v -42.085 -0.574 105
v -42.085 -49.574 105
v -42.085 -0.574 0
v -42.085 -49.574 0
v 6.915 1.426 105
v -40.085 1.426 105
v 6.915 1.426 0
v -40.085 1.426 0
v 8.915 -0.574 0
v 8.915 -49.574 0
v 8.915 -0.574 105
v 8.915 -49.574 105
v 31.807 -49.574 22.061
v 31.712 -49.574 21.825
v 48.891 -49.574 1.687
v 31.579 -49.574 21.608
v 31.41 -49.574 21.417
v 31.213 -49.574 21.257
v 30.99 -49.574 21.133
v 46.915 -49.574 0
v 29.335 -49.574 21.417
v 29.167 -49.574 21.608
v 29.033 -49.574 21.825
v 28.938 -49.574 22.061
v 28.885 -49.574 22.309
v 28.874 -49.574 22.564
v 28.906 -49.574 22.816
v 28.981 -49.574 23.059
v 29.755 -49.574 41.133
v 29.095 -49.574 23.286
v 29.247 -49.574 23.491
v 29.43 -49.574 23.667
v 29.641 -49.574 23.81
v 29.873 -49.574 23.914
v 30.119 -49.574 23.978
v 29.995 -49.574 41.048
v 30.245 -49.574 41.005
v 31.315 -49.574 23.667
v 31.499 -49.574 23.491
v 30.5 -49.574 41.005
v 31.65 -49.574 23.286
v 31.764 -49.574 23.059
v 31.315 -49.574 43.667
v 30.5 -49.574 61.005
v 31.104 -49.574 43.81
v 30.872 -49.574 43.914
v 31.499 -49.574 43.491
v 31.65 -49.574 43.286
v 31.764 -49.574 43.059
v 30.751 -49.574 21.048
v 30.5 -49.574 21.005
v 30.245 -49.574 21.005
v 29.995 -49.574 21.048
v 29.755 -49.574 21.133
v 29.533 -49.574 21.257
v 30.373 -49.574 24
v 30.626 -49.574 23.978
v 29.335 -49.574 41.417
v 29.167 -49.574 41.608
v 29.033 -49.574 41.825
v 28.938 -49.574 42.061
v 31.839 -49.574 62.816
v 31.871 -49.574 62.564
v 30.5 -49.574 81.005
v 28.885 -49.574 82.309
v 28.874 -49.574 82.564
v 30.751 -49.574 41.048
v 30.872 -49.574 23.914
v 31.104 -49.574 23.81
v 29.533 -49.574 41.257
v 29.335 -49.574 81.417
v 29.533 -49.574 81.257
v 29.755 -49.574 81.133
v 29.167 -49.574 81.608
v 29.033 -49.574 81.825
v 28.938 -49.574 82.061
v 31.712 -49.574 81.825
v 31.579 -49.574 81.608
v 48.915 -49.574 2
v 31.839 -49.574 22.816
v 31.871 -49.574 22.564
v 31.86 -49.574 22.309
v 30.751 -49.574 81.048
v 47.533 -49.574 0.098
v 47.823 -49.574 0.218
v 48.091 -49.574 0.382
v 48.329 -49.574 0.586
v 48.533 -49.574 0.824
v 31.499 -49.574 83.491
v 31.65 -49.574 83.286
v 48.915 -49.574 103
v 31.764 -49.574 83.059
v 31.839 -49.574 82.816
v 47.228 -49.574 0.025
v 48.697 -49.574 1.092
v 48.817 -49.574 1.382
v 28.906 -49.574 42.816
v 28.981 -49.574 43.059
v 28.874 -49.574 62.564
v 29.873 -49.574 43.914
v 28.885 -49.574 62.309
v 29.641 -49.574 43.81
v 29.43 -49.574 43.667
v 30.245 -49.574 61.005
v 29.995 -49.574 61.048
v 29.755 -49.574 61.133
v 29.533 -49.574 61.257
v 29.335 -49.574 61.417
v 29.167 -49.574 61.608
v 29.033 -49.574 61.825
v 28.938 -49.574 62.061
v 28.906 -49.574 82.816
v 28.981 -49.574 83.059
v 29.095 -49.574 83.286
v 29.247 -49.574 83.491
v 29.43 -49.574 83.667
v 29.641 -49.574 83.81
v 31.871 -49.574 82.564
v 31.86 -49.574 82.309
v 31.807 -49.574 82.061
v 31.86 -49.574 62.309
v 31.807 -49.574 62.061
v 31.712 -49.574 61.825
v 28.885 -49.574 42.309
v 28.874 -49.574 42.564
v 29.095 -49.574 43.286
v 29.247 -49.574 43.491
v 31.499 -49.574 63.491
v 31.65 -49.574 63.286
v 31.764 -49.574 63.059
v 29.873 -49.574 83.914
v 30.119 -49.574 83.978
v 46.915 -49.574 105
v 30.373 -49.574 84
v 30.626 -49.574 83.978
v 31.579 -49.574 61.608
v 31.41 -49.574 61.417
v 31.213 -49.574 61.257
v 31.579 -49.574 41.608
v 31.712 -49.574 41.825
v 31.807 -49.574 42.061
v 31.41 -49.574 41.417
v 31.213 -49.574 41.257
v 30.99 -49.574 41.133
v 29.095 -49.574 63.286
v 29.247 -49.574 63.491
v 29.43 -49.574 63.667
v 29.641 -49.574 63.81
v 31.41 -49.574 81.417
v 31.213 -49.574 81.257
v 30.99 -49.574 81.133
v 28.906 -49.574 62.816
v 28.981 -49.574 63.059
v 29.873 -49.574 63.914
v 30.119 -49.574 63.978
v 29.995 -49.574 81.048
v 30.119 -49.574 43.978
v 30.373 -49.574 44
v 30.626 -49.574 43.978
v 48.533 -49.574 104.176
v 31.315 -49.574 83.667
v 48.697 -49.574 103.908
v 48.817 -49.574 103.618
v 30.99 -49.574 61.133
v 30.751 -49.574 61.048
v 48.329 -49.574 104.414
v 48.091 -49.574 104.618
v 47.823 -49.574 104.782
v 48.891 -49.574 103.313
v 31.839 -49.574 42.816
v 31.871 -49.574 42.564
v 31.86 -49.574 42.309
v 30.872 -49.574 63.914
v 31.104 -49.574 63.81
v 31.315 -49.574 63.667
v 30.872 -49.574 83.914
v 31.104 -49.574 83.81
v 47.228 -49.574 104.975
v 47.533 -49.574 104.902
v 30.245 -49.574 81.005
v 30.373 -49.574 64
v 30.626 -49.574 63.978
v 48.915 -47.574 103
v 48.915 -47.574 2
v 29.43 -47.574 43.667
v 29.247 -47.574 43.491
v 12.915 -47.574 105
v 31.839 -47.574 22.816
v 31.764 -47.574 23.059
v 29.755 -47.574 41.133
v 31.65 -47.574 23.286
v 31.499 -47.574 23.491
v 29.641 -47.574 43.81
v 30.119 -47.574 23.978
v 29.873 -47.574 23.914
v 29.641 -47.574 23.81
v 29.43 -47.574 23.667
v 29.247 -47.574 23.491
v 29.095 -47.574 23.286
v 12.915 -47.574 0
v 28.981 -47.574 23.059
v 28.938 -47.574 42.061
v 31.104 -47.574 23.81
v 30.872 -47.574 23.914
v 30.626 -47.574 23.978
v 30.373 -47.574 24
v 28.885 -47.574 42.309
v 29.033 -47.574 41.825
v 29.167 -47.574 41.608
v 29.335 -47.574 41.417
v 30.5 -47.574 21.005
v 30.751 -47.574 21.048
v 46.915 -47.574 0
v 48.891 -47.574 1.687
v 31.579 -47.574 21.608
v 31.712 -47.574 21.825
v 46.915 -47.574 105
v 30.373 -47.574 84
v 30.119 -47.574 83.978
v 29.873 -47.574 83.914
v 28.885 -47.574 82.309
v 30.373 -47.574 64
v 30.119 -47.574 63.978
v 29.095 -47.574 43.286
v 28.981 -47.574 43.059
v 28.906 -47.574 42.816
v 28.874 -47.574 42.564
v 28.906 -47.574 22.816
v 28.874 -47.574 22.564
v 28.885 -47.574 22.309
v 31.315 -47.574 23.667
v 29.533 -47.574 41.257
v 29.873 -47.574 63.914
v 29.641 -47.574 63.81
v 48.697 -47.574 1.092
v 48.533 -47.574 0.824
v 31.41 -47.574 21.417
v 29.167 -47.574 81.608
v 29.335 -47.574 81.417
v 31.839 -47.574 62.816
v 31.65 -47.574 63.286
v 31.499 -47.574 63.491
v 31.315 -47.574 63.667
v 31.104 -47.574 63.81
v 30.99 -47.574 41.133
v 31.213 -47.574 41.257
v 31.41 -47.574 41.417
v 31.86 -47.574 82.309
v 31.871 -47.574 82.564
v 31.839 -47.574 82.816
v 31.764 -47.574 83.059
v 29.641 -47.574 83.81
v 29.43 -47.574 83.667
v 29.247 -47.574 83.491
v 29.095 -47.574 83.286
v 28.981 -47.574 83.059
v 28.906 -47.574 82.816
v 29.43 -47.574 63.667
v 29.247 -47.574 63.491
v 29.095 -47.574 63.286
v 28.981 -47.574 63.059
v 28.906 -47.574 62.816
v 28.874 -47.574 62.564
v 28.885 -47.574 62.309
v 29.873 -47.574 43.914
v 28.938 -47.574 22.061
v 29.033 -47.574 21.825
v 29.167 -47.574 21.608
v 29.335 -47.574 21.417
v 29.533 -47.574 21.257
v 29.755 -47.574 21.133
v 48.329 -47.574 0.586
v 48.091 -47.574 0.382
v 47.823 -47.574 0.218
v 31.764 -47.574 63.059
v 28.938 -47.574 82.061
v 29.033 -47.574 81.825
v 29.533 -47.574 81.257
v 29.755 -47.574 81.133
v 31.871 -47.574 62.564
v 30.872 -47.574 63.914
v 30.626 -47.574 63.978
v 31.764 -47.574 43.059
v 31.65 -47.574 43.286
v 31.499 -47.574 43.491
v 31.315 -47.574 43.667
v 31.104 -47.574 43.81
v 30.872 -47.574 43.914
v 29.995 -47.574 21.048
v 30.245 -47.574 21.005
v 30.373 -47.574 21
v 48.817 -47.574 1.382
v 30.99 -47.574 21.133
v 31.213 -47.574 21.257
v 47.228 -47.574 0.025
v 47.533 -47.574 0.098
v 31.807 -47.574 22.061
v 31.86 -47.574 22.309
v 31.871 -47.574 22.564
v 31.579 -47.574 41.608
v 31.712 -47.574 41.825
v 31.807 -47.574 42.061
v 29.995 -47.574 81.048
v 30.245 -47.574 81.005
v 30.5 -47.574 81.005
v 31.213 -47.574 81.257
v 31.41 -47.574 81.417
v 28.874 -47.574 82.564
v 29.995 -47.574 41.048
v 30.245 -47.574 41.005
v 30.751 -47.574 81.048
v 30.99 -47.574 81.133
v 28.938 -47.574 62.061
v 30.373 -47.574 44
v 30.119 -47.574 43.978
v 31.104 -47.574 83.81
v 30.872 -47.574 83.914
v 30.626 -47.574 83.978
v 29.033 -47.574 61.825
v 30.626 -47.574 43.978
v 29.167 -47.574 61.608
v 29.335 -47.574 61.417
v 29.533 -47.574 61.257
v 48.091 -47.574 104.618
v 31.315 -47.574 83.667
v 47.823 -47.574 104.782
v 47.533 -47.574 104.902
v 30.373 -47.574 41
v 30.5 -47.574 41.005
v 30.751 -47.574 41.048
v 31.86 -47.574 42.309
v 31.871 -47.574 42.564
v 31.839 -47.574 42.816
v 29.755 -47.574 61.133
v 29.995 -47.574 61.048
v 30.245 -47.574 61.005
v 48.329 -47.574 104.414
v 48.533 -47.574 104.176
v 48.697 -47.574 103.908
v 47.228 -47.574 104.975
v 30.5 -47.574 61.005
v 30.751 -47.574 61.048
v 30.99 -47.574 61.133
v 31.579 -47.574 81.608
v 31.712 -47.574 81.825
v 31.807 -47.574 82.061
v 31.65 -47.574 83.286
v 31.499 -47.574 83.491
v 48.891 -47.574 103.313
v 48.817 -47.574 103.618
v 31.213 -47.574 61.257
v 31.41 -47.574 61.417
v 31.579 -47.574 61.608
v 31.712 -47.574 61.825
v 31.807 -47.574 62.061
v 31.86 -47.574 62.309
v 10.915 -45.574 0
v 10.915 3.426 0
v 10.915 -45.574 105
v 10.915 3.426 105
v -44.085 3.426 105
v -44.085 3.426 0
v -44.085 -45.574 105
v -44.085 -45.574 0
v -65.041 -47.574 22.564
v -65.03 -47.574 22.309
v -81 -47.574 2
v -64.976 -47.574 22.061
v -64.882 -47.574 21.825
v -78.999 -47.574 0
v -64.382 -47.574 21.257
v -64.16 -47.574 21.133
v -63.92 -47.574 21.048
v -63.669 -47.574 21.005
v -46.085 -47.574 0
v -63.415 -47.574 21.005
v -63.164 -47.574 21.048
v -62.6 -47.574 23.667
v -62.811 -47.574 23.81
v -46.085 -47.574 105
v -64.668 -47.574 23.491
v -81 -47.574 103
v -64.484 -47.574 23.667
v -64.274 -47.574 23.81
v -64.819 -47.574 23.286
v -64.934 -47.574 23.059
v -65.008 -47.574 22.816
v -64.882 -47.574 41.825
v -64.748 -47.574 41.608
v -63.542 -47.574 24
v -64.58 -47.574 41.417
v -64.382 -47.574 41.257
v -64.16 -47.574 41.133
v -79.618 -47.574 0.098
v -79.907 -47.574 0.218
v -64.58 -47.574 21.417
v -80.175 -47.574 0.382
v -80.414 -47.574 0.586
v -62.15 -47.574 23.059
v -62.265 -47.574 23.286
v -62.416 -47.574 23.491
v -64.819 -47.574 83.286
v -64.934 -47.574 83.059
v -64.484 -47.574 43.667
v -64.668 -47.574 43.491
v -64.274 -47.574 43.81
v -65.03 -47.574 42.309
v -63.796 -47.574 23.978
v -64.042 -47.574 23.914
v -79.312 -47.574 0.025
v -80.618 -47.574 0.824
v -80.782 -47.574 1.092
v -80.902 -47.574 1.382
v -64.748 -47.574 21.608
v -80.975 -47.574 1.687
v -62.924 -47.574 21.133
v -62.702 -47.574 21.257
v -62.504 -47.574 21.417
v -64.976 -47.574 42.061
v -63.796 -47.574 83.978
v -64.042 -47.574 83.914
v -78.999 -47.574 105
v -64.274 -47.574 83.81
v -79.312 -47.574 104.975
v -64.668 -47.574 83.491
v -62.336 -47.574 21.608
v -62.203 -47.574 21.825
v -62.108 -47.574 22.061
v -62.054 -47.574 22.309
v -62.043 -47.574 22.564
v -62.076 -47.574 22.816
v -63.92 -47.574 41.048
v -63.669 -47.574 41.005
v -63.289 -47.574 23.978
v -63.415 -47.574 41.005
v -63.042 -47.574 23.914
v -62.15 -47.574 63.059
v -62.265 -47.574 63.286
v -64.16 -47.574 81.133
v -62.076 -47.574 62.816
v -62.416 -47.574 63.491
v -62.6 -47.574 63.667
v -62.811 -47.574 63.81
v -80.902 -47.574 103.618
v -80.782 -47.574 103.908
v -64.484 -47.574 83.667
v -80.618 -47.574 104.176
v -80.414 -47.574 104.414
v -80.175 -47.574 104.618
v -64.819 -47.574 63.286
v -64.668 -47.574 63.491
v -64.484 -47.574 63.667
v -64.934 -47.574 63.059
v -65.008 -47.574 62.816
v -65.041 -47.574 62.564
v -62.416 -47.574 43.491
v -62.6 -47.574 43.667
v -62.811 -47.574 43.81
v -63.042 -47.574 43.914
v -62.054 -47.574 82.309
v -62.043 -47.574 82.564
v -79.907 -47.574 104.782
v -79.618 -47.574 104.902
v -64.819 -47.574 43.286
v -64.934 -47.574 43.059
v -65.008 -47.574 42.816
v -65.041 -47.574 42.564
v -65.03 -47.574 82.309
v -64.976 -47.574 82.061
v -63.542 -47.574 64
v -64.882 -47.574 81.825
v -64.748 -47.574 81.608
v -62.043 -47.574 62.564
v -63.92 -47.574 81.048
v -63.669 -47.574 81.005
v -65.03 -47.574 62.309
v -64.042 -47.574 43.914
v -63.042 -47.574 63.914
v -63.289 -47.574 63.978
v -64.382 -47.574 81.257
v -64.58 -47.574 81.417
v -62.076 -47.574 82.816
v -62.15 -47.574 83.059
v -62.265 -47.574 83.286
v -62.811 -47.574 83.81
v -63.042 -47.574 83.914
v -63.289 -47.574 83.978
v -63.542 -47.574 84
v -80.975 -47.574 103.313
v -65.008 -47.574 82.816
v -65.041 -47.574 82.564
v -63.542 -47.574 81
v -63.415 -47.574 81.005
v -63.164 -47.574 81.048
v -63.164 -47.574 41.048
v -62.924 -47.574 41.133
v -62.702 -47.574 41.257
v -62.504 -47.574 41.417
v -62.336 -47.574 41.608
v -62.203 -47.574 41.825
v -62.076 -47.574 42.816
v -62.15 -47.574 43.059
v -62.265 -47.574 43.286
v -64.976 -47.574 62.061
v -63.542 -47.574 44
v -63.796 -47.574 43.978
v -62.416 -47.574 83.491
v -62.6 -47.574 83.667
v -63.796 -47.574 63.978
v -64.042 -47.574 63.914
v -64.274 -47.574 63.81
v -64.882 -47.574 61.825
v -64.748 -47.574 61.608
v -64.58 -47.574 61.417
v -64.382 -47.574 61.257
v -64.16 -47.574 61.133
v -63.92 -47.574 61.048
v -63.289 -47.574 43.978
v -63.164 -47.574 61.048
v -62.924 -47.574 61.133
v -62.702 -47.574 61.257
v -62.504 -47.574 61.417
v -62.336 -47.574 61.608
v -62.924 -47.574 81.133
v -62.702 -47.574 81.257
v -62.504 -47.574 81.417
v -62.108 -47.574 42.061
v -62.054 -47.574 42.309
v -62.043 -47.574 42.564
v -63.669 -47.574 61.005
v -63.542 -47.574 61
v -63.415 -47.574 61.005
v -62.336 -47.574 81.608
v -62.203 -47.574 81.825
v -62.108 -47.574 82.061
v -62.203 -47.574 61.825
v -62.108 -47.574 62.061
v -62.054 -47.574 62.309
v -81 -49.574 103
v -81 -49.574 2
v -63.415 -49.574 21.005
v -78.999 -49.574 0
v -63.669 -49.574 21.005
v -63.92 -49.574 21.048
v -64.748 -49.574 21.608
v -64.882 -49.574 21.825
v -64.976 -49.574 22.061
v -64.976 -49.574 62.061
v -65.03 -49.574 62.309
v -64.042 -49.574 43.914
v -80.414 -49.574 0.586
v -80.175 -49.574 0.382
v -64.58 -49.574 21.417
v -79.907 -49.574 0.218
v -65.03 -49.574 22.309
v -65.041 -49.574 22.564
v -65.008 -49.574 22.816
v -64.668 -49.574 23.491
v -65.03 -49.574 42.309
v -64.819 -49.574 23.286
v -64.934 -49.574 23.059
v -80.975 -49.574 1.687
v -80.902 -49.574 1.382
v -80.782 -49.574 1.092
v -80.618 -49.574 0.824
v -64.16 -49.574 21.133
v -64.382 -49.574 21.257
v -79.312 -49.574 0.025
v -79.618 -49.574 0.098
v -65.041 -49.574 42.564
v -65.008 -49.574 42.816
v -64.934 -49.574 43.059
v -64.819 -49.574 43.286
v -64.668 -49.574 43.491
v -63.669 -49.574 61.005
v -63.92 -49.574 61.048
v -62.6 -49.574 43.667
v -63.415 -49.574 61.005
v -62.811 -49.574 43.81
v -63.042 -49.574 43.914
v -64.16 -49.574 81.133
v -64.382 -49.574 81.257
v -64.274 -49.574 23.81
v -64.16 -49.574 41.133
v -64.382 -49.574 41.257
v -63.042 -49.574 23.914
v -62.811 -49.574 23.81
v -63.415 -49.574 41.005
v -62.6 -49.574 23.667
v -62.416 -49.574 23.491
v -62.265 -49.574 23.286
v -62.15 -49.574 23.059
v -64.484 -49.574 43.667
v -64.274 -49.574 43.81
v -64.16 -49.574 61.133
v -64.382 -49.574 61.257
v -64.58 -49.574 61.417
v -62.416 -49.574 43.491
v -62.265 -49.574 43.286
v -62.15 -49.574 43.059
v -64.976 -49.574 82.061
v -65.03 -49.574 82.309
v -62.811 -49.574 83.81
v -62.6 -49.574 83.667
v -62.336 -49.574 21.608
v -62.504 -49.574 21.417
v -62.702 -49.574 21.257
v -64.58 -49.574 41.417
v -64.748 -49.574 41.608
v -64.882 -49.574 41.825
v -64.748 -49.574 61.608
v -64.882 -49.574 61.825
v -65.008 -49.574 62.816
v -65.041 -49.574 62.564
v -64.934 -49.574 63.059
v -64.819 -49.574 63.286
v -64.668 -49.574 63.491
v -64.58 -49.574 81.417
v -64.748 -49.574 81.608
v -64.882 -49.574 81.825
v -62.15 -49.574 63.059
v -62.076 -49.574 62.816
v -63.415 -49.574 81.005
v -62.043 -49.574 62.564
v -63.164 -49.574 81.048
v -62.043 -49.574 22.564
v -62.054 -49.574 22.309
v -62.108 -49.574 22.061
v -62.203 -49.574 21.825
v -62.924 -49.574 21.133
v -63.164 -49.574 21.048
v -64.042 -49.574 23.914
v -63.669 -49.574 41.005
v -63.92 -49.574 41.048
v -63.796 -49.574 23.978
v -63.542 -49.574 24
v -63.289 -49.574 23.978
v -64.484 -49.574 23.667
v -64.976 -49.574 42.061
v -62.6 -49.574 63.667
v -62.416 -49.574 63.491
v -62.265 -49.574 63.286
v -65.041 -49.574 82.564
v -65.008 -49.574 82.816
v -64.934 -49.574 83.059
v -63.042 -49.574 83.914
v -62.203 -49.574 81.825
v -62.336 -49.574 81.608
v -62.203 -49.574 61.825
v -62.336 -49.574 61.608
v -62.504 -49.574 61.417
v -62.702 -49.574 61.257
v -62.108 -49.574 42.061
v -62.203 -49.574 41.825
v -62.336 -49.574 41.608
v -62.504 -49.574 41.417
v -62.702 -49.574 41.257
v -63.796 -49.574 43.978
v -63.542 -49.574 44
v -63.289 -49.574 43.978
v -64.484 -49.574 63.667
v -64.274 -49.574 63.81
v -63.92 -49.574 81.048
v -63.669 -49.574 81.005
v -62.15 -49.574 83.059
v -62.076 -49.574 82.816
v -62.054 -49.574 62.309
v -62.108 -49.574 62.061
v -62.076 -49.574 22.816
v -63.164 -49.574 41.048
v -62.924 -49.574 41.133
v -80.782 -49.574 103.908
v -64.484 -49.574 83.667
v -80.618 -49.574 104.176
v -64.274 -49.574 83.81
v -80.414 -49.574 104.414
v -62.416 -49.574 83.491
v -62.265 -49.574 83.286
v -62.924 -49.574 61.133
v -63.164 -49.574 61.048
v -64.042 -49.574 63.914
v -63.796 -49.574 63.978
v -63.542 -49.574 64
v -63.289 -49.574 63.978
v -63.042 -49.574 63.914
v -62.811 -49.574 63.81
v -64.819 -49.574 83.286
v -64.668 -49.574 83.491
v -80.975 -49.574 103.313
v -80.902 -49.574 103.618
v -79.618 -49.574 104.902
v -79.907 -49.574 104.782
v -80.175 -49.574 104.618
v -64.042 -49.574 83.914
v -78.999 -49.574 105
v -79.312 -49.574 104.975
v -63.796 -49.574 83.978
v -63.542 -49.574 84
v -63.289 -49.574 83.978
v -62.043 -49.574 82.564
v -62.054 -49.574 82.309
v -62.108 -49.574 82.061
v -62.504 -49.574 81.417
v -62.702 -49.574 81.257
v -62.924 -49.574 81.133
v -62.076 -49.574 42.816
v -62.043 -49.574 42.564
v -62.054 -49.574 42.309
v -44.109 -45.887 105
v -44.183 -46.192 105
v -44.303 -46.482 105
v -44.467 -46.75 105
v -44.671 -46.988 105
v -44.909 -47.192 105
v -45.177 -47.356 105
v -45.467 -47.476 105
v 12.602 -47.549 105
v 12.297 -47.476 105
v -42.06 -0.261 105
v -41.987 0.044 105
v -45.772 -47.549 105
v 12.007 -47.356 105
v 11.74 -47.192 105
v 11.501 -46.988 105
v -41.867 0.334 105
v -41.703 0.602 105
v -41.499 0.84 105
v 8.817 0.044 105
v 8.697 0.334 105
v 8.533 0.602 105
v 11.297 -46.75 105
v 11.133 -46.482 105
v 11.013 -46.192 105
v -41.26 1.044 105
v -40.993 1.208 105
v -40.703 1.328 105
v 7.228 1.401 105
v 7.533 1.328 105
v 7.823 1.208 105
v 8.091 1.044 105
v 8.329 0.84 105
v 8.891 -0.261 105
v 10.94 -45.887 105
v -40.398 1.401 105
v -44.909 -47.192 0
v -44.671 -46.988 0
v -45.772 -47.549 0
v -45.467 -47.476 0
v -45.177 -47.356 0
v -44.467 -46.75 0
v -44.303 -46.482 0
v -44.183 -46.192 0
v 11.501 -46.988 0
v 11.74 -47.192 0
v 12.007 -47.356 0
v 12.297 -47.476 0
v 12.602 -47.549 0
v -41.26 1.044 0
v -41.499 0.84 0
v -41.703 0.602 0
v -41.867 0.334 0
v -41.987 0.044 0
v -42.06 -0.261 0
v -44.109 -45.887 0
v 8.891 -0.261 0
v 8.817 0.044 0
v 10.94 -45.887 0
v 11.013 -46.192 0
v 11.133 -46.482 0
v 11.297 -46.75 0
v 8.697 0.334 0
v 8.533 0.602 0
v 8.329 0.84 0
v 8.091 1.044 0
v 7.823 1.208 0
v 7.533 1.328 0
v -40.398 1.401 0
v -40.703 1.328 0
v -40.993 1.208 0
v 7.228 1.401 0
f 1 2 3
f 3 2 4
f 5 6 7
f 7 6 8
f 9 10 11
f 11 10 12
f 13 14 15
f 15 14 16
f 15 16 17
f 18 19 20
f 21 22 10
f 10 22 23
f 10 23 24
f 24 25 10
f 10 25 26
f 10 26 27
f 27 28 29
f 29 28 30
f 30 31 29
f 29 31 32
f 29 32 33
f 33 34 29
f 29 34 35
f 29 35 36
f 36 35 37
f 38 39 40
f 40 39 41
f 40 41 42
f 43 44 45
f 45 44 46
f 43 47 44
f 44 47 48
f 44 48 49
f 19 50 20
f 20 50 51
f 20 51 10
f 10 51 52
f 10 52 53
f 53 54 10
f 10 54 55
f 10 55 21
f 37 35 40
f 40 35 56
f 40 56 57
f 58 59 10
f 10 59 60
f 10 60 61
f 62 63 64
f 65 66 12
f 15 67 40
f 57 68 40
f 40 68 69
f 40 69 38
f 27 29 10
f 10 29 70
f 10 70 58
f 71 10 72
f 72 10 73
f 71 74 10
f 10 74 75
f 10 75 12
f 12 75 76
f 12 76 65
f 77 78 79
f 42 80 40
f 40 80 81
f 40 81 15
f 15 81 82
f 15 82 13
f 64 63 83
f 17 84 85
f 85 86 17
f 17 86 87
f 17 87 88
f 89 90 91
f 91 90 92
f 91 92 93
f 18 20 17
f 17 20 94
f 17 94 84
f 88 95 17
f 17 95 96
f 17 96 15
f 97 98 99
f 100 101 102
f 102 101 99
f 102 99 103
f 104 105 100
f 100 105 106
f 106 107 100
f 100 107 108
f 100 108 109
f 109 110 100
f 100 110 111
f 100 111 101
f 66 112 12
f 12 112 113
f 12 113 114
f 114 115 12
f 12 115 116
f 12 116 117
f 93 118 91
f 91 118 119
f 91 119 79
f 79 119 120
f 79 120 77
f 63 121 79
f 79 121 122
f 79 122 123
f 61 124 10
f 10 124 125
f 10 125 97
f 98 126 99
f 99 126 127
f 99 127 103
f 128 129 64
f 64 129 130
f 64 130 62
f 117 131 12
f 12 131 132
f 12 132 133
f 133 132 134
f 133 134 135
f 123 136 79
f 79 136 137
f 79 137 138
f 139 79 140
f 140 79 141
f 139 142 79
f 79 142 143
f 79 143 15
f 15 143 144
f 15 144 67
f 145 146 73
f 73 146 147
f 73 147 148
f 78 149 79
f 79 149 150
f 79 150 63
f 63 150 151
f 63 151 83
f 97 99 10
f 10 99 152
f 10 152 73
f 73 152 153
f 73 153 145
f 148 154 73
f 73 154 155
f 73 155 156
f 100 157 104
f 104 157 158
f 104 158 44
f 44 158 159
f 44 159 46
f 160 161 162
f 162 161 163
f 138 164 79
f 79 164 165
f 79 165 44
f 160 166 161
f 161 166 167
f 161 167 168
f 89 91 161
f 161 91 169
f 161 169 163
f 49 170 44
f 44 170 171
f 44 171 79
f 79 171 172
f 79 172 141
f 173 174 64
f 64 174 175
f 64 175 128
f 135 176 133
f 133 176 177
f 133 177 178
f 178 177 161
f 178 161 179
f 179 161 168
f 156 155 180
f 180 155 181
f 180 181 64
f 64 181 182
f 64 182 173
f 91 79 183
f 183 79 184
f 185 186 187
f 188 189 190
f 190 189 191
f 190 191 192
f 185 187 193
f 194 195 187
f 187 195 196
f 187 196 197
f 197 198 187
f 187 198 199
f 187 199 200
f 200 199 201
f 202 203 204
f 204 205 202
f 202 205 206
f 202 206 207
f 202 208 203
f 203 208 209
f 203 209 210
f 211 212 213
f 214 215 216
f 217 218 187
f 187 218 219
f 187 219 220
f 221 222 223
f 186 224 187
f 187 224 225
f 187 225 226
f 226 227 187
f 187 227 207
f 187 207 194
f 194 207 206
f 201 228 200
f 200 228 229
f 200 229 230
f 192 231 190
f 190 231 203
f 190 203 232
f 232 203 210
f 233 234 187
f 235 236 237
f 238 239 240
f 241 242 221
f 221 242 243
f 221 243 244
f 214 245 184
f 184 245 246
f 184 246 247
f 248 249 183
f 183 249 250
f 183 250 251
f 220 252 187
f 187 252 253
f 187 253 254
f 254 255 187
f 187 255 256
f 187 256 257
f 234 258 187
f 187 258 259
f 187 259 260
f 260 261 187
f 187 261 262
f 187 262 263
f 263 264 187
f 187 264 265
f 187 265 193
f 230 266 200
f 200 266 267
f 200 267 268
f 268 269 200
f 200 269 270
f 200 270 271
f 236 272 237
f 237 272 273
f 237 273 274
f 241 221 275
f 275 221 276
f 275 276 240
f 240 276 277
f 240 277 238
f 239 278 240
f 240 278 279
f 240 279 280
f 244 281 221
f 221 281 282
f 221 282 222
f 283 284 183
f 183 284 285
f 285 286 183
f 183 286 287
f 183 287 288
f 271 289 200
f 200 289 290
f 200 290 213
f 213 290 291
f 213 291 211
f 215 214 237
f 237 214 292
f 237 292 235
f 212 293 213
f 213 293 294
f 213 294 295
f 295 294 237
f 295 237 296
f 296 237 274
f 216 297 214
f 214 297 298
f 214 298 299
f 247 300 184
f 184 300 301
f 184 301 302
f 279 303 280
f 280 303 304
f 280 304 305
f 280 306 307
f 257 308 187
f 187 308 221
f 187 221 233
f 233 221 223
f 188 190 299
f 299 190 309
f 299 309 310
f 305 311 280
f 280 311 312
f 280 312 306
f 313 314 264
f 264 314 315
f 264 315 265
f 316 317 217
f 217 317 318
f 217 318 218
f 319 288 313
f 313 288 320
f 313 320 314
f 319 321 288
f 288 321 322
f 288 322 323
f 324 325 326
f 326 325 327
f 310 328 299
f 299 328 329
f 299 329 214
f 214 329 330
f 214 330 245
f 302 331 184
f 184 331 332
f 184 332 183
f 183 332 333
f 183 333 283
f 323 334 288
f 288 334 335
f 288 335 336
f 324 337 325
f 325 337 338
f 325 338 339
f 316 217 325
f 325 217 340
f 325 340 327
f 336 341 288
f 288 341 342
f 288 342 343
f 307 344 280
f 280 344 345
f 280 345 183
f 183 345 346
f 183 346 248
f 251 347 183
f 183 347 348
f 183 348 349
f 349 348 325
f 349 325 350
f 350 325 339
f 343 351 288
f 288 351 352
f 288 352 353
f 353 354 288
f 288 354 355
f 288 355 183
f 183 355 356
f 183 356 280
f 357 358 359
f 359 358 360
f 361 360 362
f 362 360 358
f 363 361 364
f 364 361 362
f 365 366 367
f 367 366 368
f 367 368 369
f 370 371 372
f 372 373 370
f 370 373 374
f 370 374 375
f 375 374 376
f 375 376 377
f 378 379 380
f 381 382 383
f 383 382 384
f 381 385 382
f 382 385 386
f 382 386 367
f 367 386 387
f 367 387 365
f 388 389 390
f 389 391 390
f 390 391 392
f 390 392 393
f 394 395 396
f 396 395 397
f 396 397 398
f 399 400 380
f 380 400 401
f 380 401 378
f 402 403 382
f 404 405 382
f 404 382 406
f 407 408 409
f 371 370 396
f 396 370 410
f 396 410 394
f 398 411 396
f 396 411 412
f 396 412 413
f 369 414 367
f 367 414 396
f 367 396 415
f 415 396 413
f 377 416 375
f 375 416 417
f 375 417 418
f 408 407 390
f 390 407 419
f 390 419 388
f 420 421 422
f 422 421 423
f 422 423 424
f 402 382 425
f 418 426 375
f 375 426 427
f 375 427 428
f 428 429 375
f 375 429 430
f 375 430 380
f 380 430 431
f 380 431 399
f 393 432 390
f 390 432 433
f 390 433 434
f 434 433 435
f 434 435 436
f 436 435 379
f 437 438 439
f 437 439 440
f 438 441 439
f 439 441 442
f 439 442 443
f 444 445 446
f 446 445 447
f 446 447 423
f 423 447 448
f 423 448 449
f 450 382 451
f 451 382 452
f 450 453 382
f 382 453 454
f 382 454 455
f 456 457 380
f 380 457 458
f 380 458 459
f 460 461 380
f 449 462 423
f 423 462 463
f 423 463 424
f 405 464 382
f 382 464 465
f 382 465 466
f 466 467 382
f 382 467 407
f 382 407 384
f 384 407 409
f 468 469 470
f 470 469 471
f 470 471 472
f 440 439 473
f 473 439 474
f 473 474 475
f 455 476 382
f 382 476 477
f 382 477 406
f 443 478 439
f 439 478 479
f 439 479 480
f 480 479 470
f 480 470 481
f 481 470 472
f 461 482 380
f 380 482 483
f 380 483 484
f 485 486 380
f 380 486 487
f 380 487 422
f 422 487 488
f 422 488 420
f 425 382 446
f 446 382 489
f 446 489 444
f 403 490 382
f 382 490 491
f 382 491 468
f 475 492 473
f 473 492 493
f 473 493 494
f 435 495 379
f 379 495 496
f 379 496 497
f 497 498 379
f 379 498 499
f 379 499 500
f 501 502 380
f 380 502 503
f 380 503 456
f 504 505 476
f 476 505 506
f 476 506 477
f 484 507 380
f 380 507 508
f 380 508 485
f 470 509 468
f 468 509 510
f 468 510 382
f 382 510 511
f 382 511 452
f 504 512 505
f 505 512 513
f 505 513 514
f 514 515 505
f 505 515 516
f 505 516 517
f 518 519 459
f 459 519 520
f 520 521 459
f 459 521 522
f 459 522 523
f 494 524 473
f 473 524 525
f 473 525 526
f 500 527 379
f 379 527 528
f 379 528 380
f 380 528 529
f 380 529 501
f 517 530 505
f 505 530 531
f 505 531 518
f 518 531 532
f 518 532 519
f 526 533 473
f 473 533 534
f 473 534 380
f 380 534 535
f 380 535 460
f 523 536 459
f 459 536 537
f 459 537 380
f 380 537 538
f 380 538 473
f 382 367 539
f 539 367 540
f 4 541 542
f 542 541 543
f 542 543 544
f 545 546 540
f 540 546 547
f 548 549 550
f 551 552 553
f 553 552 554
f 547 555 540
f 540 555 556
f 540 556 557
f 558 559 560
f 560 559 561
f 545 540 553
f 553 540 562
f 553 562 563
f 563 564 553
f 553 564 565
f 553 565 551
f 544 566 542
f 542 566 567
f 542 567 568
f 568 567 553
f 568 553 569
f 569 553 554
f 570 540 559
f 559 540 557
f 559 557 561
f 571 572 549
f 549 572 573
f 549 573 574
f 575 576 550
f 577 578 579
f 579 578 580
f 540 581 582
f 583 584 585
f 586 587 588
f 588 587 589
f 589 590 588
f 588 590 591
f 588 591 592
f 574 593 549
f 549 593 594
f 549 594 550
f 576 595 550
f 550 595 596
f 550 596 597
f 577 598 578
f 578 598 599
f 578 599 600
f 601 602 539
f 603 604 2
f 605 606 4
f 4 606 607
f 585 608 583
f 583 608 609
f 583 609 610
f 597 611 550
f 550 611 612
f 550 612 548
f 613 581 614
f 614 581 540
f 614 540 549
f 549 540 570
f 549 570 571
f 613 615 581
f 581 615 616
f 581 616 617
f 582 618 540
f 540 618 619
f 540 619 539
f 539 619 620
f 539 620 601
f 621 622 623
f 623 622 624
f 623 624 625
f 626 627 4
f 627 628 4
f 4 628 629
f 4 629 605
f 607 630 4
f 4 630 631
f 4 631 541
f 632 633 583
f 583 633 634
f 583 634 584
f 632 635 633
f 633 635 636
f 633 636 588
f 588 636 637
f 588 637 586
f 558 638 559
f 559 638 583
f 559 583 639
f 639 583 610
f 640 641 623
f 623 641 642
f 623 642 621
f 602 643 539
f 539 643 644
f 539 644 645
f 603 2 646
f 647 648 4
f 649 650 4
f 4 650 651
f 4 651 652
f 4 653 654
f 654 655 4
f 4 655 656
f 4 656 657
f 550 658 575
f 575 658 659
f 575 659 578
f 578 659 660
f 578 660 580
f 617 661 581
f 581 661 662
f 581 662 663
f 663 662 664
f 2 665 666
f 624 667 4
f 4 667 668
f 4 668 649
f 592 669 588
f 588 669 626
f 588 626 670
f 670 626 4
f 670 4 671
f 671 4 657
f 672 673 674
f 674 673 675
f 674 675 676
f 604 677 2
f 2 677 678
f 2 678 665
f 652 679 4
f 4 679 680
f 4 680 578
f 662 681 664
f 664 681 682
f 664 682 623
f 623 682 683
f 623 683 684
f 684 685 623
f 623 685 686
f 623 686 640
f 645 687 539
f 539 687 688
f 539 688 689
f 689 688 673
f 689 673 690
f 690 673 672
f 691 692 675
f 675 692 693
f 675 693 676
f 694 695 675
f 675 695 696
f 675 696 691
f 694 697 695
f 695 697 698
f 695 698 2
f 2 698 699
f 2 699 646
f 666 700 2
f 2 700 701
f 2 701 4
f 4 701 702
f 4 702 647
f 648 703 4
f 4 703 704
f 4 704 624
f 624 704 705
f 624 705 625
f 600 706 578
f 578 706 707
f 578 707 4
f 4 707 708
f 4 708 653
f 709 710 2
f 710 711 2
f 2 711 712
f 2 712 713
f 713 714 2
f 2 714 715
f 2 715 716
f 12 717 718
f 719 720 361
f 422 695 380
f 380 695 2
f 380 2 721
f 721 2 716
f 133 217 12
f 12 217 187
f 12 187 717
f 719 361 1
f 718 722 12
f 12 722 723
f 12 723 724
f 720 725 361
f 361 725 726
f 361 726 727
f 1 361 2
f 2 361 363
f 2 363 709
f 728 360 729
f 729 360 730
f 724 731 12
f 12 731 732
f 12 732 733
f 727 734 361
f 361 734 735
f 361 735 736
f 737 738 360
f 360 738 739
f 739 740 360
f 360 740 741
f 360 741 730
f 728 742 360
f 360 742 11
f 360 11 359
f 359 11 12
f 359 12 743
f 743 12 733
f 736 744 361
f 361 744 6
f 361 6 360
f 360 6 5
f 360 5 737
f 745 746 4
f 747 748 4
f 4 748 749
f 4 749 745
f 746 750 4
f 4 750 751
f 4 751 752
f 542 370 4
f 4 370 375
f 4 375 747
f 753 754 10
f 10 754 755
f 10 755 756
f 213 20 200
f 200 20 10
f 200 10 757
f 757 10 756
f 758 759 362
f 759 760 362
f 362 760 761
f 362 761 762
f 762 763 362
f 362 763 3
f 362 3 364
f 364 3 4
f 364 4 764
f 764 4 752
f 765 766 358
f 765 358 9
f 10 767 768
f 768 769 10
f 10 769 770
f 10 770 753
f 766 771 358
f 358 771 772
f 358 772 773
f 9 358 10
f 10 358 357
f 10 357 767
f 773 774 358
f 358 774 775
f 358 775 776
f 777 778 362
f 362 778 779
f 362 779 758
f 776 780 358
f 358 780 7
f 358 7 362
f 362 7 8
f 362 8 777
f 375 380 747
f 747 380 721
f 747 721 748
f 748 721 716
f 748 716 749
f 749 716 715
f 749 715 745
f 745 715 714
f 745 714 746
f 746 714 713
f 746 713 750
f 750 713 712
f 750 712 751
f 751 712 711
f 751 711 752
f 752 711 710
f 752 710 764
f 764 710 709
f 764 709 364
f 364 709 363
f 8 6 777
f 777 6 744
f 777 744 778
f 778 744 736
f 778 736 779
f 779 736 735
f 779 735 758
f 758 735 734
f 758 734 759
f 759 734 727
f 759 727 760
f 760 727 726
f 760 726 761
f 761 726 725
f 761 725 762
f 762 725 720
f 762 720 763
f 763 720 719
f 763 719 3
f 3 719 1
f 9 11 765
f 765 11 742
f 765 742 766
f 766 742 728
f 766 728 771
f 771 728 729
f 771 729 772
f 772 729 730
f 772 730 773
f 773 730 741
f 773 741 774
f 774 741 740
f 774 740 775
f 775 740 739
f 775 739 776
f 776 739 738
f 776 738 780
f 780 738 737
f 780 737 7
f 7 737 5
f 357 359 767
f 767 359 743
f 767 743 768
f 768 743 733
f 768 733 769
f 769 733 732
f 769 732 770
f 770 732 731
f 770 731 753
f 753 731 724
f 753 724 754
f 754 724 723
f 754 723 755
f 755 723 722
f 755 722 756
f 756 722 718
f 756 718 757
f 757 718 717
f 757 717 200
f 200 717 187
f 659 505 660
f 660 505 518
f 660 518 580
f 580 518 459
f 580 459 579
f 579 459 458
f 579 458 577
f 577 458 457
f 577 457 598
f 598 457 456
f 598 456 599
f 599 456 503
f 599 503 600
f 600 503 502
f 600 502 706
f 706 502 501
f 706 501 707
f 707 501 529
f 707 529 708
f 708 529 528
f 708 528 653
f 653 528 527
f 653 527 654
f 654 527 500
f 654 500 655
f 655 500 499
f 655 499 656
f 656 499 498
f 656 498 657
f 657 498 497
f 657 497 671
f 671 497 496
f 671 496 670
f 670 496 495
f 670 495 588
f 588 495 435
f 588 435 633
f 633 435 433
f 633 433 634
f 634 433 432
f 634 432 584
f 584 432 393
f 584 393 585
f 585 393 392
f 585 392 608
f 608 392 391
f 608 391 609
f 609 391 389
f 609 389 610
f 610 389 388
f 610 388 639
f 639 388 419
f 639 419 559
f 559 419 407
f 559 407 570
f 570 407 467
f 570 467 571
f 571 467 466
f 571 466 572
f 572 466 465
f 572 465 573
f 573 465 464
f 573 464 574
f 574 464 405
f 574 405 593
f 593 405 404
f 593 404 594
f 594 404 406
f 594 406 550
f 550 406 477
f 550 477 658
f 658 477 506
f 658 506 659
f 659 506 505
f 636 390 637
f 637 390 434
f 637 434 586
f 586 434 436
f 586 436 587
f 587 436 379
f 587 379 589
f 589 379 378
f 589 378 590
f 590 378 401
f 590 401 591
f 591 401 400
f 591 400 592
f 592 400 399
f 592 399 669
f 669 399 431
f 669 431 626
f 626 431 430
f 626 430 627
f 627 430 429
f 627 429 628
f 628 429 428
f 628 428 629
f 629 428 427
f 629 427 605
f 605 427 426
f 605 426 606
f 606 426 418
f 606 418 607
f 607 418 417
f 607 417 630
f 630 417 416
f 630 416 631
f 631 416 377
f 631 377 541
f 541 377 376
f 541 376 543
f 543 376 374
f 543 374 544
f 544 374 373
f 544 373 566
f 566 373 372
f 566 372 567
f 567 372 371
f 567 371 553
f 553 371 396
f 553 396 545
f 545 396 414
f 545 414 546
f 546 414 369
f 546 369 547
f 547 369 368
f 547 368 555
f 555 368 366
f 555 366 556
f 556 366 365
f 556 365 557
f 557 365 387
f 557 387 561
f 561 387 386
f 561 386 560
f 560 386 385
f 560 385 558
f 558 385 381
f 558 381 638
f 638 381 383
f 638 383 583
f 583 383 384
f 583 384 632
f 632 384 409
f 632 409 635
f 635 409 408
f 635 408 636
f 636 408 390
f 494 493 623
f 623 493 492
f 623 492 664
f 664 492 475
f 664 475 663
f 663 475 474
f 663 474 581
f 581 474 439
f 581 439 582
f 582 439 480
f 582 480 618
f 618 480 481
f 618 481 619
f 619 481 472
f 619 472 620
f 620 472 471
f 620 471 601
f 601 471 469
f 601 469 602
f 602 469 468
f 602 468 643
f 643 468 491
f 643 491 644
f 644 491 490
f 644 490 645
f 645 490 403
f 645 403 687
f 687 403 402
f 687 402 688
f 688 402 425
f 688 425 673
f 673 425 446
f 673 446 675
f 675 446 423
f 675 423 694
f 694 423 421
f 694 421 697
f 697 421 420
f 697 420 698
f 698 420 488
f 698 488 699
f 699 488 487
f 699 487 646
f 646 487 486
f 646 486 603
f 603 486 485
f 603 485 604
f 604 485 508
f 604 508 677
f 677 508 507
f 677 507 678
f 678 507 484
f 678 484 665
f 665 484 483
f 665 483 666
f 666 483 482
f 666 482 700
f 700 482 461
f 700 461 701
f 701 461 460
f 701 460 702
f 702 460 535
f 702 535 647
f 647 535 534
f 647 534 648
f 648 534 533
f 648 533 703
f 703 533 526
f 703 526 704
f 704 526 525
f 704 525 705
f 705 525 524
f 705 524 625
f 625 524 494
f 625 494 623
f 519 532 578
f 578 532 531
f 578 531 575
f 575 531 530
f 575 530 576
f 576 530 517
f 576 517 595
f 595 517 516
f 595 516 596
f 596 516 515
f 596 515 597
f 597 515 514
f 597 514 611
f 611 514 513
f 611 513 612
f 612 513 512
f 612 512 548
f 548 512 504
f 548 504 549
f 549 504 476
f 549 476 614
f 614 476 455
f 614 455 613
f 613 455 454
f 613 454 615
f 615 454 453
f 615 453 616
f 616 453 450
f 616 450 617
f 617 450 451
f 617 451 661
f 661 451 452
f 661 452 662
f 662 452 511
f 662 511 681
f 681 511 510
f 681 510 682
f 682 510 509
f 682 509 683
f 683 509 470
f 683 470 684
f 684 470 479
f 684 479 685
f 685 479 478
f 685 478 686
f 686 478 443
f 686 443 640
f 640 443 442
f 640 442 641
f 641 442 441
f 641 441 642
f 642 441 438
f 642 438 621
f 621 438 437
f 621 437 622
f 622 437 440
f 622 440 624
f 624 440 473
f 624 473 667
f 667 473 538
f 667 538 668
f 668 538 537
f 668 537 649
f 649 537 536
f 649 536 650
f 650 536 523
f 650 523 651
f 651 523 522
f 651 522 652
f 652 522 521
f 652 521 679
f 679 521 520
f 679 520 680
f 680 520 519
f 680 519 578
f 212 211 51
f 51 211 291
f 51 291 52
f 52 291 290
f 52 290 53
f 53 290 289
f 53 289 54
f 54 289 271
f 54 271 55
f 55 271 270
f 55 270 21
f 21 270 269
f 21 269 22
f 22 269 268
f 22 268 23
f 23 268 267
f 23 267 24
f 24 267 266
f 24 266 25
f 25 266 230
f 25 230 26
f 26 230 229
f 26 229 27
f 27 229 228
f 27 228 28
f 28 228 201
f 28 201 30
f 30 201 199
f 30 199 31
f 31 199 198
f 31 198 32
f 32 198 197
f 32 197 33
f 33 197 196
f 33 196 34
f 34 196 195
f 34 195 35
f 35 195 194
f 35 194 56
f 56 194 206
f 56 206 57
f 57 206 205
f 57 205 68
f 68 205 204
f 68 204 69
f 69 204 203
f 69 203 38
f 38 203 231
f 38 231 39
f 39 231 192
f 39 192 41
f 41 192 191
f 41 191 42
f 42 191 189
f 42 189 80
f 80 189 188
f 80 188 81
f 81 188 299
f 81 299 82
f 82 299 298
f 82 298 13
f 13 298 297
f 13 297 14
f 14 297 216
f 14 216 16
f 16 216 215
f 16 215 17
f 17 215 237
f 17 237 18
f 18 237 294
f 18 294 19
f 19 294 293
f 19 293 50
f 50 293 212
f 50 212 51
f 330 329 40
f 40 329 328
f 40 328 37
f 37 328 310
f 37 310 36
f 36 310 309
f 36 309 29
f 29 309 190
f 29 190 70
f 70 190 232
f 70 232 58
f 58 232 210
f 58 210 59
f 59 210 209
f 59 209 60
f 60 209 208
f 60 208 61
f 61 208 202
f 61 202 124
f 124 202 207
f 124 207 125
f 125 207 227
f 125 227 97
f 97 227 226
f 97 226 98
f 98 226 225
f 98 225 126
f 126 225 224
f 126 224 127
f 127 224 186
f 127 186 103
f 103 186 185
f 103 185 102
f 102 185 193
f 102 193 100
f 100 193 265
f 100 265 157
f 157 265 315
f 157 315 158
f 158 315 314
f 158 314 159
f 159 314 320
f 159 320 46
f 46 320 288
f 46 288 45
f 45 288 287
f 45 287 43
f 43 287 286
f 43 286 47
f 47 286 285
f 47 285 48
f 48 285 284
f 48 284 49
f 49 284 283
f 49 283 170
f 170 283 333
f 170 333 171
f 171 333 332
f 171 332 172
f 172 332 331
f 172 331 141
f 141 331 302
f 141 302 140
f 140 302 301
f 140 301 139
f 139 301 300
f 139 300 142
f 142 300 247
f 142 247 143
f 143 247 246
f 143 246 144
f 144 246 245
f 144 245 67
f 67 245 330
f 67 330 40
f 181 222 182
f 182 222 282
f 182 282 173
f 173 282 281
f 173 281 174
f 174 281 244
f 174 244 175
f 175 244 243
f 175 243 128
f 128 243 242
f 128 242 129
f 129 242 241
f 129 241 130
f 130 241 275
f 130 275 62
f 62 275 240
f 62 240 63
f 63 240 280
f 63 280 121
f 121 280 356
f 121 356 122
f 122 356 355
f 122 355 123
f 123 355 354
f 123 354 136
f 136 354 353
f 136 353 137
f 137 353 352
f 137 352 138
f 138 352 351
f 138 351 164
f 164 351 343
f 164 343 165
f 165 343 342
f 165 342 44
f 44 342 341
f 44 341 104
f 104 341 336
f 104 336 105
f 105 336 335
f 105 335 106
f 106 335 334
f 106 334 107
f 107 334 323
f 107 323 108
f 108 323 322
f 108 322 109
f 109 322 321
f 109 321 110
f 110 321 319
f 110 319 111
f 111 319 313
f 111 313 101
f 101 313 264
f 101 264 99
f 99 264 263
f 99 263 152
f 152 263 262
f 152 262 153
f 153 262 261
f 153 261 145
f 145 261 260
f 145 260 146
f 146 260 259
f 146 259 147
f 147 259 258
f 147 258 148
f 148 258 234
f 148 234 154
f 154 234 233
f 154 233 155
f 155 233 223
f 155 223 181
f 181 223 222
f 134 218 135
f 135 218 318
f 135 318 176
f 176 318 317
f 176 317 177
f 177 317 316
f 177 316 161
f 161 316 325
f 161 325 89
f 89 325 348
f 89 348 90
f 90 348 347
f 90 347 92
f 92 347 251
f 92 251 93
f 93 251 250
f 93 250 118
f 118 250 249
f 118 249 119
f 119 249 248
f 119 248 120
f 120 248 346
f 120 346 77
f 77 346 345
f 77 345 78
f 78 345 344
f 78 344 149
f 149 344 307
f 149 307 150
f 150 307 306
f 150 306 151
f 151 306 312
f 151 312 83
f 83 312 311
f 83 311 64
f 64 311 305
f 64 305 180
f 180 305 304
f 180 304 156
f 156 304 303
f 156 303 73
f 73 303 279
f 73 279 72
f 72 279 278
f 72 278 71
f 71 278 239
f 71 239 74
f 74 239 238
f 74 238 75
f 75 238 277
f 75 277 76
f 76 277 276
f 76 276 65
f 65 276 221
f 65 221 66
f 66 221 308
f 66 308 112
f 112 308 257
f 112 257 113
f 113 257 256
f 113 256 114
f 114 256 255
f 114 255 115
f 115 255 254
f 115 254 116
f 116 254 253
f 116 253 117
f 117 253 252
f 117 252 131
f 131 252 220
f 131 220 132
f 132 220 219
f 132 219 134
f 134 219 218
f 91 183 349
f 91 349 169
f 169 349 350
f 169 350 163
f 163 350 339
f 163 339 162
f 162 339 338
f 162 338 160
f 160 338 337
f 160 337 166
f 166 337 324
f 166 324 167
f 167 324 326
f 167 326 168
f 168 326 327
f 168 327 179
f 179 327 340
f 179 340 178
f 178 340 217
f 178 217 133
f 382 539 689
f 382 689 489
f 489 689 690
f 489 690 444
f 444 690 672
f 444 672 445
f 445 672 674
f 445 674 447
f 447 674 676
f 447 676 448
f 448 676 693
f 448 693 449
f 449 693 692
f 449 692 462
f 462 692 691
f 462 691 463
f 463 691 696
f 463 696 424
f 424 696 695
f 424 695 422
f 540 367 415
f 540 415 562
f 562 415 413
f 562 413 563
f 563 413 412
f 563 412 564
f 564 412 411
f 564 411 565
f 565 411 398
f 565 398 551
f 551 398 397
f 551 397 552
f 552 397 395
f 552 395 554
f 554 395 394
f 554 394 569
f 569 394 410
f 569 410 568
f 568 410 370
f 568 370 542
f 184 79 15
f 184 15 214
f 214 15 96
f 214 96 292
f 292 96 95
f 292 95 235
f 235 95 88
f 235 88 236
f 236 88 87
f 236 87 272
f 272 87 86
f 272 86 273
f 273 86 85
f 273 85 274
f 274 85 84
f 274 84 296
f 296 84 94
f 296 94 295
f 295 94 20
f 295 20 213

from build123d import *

# Parameters (mm, degrees)
BOSS_EXTRUDE1_DEPTH = 105
FILLET2_R           = 2
FILLET3_R           = 2
FILLET4_R           = 2
FILLET5_R           = 2
SKETCH2_R           = 1.5
CUT_EXTRUDE1_DEPTH  = 105
FILLET6_R           = 2


with BuildPart() as part:
    # Sketch1 → Boss-Extrude1 (new body)
    with BuildSketch(Plane.XY):
        Polygon((-42.084779145, 1.426065285), (8.915220855, 1.426065285), (8.915220855, -49.573934715), (48.915220855, -49.573934715), (48.915220855, -47.573934715), (10.915220855, -47.573934715), (10.915220855, 3.426065285), (-44.084779145, 3.426065285), (-44.084779145, -47.573934715), (-80.999498671, -47.573934715), (-80.999498671, -49.573934715), (-42.084779145, -49.573934715), align=None)
    extrude(amount=BOSS_EXTRUDE1_DEPTH)

    # Fillet2
    fillet2_edges = [part.edges().sort_by_distance(p)[0] for p in [
        (-44.084779145, -47.573934715, 52.5),
    ]]
    fillet(fillet2_edges, radius=FILLET2_R)

    # Fillet3
    fillet3_edges = [part.edges().sort_by_distance(p)[0] for p in [
        (-42.084779145, 1.426065285, 52.5),
    ]]
    fillet(fillet3_edges, radius=FILLET3_R)

    # Fillet4
    fillet4_edges = [part.edges().sort_by_distance(p)[0] for p in [
        (8.915220855, 1.426065285, 52.5),
    ]]
    fillet(fillet4_edges, radius=FILLET4_R)

    # Fillet5
    fillet5_edges = [part.edges().sort_by_distance(p)[0] for p in [
        (10.915220855, -47.573934715, 52.5),
    ]]
    fillet(fillet5_edges, radius=FILLET5_R)

    # Sketch2 → Cut-Extrude1 (cut)
    with BuildSketch(Plane(origin=(0, -47.573934715, 0), x_dir=(1, 0, 0), z_dir=(0, 1, 0))):
        with Locations((-63.542138908, -42.5)):
            Circle(SKETCH2_R)
        with Locations((-63.542138908, -22.5)):
            Circle(SKETCH2_R)
        with Locations((-63.542138908, -82.5)):
            Circle(SKETCH2_R)
        with Locations((-63.542138908, -62.5)):
            Circle(SKETCH2_R)
        with Locations((30.372580618, -82.5)):
            Circle(SKETCH2_R)
        with Locations((30.372580618, -62.5)):
            Circle(SKETCH2_R)
        with Locations((30.372580618, -42.5)):
            Circle(SKETCH2_R)
        with Locations((30.372580618, -22.5)):
            Circle(SKETCH2_R)
    extrude(amount=-CUT_EXTRUDE1_DEPTH, mode=Mode.SUBTRACT)

    # Fillet6
    fillet6_edges = [part.edges().sort_by_distance(p)[0] for p in [
        (-80.999498671, -48.573934715, 0),
        (48.915220855, -48.573934715, 0),
        (48.915220855, -48.573934715, 105),
        (-80.999498671, -48.573934715, 105),
    ]]
    fillet(fillet6_edges, radius=FILLET6_R)


solid = part.part
